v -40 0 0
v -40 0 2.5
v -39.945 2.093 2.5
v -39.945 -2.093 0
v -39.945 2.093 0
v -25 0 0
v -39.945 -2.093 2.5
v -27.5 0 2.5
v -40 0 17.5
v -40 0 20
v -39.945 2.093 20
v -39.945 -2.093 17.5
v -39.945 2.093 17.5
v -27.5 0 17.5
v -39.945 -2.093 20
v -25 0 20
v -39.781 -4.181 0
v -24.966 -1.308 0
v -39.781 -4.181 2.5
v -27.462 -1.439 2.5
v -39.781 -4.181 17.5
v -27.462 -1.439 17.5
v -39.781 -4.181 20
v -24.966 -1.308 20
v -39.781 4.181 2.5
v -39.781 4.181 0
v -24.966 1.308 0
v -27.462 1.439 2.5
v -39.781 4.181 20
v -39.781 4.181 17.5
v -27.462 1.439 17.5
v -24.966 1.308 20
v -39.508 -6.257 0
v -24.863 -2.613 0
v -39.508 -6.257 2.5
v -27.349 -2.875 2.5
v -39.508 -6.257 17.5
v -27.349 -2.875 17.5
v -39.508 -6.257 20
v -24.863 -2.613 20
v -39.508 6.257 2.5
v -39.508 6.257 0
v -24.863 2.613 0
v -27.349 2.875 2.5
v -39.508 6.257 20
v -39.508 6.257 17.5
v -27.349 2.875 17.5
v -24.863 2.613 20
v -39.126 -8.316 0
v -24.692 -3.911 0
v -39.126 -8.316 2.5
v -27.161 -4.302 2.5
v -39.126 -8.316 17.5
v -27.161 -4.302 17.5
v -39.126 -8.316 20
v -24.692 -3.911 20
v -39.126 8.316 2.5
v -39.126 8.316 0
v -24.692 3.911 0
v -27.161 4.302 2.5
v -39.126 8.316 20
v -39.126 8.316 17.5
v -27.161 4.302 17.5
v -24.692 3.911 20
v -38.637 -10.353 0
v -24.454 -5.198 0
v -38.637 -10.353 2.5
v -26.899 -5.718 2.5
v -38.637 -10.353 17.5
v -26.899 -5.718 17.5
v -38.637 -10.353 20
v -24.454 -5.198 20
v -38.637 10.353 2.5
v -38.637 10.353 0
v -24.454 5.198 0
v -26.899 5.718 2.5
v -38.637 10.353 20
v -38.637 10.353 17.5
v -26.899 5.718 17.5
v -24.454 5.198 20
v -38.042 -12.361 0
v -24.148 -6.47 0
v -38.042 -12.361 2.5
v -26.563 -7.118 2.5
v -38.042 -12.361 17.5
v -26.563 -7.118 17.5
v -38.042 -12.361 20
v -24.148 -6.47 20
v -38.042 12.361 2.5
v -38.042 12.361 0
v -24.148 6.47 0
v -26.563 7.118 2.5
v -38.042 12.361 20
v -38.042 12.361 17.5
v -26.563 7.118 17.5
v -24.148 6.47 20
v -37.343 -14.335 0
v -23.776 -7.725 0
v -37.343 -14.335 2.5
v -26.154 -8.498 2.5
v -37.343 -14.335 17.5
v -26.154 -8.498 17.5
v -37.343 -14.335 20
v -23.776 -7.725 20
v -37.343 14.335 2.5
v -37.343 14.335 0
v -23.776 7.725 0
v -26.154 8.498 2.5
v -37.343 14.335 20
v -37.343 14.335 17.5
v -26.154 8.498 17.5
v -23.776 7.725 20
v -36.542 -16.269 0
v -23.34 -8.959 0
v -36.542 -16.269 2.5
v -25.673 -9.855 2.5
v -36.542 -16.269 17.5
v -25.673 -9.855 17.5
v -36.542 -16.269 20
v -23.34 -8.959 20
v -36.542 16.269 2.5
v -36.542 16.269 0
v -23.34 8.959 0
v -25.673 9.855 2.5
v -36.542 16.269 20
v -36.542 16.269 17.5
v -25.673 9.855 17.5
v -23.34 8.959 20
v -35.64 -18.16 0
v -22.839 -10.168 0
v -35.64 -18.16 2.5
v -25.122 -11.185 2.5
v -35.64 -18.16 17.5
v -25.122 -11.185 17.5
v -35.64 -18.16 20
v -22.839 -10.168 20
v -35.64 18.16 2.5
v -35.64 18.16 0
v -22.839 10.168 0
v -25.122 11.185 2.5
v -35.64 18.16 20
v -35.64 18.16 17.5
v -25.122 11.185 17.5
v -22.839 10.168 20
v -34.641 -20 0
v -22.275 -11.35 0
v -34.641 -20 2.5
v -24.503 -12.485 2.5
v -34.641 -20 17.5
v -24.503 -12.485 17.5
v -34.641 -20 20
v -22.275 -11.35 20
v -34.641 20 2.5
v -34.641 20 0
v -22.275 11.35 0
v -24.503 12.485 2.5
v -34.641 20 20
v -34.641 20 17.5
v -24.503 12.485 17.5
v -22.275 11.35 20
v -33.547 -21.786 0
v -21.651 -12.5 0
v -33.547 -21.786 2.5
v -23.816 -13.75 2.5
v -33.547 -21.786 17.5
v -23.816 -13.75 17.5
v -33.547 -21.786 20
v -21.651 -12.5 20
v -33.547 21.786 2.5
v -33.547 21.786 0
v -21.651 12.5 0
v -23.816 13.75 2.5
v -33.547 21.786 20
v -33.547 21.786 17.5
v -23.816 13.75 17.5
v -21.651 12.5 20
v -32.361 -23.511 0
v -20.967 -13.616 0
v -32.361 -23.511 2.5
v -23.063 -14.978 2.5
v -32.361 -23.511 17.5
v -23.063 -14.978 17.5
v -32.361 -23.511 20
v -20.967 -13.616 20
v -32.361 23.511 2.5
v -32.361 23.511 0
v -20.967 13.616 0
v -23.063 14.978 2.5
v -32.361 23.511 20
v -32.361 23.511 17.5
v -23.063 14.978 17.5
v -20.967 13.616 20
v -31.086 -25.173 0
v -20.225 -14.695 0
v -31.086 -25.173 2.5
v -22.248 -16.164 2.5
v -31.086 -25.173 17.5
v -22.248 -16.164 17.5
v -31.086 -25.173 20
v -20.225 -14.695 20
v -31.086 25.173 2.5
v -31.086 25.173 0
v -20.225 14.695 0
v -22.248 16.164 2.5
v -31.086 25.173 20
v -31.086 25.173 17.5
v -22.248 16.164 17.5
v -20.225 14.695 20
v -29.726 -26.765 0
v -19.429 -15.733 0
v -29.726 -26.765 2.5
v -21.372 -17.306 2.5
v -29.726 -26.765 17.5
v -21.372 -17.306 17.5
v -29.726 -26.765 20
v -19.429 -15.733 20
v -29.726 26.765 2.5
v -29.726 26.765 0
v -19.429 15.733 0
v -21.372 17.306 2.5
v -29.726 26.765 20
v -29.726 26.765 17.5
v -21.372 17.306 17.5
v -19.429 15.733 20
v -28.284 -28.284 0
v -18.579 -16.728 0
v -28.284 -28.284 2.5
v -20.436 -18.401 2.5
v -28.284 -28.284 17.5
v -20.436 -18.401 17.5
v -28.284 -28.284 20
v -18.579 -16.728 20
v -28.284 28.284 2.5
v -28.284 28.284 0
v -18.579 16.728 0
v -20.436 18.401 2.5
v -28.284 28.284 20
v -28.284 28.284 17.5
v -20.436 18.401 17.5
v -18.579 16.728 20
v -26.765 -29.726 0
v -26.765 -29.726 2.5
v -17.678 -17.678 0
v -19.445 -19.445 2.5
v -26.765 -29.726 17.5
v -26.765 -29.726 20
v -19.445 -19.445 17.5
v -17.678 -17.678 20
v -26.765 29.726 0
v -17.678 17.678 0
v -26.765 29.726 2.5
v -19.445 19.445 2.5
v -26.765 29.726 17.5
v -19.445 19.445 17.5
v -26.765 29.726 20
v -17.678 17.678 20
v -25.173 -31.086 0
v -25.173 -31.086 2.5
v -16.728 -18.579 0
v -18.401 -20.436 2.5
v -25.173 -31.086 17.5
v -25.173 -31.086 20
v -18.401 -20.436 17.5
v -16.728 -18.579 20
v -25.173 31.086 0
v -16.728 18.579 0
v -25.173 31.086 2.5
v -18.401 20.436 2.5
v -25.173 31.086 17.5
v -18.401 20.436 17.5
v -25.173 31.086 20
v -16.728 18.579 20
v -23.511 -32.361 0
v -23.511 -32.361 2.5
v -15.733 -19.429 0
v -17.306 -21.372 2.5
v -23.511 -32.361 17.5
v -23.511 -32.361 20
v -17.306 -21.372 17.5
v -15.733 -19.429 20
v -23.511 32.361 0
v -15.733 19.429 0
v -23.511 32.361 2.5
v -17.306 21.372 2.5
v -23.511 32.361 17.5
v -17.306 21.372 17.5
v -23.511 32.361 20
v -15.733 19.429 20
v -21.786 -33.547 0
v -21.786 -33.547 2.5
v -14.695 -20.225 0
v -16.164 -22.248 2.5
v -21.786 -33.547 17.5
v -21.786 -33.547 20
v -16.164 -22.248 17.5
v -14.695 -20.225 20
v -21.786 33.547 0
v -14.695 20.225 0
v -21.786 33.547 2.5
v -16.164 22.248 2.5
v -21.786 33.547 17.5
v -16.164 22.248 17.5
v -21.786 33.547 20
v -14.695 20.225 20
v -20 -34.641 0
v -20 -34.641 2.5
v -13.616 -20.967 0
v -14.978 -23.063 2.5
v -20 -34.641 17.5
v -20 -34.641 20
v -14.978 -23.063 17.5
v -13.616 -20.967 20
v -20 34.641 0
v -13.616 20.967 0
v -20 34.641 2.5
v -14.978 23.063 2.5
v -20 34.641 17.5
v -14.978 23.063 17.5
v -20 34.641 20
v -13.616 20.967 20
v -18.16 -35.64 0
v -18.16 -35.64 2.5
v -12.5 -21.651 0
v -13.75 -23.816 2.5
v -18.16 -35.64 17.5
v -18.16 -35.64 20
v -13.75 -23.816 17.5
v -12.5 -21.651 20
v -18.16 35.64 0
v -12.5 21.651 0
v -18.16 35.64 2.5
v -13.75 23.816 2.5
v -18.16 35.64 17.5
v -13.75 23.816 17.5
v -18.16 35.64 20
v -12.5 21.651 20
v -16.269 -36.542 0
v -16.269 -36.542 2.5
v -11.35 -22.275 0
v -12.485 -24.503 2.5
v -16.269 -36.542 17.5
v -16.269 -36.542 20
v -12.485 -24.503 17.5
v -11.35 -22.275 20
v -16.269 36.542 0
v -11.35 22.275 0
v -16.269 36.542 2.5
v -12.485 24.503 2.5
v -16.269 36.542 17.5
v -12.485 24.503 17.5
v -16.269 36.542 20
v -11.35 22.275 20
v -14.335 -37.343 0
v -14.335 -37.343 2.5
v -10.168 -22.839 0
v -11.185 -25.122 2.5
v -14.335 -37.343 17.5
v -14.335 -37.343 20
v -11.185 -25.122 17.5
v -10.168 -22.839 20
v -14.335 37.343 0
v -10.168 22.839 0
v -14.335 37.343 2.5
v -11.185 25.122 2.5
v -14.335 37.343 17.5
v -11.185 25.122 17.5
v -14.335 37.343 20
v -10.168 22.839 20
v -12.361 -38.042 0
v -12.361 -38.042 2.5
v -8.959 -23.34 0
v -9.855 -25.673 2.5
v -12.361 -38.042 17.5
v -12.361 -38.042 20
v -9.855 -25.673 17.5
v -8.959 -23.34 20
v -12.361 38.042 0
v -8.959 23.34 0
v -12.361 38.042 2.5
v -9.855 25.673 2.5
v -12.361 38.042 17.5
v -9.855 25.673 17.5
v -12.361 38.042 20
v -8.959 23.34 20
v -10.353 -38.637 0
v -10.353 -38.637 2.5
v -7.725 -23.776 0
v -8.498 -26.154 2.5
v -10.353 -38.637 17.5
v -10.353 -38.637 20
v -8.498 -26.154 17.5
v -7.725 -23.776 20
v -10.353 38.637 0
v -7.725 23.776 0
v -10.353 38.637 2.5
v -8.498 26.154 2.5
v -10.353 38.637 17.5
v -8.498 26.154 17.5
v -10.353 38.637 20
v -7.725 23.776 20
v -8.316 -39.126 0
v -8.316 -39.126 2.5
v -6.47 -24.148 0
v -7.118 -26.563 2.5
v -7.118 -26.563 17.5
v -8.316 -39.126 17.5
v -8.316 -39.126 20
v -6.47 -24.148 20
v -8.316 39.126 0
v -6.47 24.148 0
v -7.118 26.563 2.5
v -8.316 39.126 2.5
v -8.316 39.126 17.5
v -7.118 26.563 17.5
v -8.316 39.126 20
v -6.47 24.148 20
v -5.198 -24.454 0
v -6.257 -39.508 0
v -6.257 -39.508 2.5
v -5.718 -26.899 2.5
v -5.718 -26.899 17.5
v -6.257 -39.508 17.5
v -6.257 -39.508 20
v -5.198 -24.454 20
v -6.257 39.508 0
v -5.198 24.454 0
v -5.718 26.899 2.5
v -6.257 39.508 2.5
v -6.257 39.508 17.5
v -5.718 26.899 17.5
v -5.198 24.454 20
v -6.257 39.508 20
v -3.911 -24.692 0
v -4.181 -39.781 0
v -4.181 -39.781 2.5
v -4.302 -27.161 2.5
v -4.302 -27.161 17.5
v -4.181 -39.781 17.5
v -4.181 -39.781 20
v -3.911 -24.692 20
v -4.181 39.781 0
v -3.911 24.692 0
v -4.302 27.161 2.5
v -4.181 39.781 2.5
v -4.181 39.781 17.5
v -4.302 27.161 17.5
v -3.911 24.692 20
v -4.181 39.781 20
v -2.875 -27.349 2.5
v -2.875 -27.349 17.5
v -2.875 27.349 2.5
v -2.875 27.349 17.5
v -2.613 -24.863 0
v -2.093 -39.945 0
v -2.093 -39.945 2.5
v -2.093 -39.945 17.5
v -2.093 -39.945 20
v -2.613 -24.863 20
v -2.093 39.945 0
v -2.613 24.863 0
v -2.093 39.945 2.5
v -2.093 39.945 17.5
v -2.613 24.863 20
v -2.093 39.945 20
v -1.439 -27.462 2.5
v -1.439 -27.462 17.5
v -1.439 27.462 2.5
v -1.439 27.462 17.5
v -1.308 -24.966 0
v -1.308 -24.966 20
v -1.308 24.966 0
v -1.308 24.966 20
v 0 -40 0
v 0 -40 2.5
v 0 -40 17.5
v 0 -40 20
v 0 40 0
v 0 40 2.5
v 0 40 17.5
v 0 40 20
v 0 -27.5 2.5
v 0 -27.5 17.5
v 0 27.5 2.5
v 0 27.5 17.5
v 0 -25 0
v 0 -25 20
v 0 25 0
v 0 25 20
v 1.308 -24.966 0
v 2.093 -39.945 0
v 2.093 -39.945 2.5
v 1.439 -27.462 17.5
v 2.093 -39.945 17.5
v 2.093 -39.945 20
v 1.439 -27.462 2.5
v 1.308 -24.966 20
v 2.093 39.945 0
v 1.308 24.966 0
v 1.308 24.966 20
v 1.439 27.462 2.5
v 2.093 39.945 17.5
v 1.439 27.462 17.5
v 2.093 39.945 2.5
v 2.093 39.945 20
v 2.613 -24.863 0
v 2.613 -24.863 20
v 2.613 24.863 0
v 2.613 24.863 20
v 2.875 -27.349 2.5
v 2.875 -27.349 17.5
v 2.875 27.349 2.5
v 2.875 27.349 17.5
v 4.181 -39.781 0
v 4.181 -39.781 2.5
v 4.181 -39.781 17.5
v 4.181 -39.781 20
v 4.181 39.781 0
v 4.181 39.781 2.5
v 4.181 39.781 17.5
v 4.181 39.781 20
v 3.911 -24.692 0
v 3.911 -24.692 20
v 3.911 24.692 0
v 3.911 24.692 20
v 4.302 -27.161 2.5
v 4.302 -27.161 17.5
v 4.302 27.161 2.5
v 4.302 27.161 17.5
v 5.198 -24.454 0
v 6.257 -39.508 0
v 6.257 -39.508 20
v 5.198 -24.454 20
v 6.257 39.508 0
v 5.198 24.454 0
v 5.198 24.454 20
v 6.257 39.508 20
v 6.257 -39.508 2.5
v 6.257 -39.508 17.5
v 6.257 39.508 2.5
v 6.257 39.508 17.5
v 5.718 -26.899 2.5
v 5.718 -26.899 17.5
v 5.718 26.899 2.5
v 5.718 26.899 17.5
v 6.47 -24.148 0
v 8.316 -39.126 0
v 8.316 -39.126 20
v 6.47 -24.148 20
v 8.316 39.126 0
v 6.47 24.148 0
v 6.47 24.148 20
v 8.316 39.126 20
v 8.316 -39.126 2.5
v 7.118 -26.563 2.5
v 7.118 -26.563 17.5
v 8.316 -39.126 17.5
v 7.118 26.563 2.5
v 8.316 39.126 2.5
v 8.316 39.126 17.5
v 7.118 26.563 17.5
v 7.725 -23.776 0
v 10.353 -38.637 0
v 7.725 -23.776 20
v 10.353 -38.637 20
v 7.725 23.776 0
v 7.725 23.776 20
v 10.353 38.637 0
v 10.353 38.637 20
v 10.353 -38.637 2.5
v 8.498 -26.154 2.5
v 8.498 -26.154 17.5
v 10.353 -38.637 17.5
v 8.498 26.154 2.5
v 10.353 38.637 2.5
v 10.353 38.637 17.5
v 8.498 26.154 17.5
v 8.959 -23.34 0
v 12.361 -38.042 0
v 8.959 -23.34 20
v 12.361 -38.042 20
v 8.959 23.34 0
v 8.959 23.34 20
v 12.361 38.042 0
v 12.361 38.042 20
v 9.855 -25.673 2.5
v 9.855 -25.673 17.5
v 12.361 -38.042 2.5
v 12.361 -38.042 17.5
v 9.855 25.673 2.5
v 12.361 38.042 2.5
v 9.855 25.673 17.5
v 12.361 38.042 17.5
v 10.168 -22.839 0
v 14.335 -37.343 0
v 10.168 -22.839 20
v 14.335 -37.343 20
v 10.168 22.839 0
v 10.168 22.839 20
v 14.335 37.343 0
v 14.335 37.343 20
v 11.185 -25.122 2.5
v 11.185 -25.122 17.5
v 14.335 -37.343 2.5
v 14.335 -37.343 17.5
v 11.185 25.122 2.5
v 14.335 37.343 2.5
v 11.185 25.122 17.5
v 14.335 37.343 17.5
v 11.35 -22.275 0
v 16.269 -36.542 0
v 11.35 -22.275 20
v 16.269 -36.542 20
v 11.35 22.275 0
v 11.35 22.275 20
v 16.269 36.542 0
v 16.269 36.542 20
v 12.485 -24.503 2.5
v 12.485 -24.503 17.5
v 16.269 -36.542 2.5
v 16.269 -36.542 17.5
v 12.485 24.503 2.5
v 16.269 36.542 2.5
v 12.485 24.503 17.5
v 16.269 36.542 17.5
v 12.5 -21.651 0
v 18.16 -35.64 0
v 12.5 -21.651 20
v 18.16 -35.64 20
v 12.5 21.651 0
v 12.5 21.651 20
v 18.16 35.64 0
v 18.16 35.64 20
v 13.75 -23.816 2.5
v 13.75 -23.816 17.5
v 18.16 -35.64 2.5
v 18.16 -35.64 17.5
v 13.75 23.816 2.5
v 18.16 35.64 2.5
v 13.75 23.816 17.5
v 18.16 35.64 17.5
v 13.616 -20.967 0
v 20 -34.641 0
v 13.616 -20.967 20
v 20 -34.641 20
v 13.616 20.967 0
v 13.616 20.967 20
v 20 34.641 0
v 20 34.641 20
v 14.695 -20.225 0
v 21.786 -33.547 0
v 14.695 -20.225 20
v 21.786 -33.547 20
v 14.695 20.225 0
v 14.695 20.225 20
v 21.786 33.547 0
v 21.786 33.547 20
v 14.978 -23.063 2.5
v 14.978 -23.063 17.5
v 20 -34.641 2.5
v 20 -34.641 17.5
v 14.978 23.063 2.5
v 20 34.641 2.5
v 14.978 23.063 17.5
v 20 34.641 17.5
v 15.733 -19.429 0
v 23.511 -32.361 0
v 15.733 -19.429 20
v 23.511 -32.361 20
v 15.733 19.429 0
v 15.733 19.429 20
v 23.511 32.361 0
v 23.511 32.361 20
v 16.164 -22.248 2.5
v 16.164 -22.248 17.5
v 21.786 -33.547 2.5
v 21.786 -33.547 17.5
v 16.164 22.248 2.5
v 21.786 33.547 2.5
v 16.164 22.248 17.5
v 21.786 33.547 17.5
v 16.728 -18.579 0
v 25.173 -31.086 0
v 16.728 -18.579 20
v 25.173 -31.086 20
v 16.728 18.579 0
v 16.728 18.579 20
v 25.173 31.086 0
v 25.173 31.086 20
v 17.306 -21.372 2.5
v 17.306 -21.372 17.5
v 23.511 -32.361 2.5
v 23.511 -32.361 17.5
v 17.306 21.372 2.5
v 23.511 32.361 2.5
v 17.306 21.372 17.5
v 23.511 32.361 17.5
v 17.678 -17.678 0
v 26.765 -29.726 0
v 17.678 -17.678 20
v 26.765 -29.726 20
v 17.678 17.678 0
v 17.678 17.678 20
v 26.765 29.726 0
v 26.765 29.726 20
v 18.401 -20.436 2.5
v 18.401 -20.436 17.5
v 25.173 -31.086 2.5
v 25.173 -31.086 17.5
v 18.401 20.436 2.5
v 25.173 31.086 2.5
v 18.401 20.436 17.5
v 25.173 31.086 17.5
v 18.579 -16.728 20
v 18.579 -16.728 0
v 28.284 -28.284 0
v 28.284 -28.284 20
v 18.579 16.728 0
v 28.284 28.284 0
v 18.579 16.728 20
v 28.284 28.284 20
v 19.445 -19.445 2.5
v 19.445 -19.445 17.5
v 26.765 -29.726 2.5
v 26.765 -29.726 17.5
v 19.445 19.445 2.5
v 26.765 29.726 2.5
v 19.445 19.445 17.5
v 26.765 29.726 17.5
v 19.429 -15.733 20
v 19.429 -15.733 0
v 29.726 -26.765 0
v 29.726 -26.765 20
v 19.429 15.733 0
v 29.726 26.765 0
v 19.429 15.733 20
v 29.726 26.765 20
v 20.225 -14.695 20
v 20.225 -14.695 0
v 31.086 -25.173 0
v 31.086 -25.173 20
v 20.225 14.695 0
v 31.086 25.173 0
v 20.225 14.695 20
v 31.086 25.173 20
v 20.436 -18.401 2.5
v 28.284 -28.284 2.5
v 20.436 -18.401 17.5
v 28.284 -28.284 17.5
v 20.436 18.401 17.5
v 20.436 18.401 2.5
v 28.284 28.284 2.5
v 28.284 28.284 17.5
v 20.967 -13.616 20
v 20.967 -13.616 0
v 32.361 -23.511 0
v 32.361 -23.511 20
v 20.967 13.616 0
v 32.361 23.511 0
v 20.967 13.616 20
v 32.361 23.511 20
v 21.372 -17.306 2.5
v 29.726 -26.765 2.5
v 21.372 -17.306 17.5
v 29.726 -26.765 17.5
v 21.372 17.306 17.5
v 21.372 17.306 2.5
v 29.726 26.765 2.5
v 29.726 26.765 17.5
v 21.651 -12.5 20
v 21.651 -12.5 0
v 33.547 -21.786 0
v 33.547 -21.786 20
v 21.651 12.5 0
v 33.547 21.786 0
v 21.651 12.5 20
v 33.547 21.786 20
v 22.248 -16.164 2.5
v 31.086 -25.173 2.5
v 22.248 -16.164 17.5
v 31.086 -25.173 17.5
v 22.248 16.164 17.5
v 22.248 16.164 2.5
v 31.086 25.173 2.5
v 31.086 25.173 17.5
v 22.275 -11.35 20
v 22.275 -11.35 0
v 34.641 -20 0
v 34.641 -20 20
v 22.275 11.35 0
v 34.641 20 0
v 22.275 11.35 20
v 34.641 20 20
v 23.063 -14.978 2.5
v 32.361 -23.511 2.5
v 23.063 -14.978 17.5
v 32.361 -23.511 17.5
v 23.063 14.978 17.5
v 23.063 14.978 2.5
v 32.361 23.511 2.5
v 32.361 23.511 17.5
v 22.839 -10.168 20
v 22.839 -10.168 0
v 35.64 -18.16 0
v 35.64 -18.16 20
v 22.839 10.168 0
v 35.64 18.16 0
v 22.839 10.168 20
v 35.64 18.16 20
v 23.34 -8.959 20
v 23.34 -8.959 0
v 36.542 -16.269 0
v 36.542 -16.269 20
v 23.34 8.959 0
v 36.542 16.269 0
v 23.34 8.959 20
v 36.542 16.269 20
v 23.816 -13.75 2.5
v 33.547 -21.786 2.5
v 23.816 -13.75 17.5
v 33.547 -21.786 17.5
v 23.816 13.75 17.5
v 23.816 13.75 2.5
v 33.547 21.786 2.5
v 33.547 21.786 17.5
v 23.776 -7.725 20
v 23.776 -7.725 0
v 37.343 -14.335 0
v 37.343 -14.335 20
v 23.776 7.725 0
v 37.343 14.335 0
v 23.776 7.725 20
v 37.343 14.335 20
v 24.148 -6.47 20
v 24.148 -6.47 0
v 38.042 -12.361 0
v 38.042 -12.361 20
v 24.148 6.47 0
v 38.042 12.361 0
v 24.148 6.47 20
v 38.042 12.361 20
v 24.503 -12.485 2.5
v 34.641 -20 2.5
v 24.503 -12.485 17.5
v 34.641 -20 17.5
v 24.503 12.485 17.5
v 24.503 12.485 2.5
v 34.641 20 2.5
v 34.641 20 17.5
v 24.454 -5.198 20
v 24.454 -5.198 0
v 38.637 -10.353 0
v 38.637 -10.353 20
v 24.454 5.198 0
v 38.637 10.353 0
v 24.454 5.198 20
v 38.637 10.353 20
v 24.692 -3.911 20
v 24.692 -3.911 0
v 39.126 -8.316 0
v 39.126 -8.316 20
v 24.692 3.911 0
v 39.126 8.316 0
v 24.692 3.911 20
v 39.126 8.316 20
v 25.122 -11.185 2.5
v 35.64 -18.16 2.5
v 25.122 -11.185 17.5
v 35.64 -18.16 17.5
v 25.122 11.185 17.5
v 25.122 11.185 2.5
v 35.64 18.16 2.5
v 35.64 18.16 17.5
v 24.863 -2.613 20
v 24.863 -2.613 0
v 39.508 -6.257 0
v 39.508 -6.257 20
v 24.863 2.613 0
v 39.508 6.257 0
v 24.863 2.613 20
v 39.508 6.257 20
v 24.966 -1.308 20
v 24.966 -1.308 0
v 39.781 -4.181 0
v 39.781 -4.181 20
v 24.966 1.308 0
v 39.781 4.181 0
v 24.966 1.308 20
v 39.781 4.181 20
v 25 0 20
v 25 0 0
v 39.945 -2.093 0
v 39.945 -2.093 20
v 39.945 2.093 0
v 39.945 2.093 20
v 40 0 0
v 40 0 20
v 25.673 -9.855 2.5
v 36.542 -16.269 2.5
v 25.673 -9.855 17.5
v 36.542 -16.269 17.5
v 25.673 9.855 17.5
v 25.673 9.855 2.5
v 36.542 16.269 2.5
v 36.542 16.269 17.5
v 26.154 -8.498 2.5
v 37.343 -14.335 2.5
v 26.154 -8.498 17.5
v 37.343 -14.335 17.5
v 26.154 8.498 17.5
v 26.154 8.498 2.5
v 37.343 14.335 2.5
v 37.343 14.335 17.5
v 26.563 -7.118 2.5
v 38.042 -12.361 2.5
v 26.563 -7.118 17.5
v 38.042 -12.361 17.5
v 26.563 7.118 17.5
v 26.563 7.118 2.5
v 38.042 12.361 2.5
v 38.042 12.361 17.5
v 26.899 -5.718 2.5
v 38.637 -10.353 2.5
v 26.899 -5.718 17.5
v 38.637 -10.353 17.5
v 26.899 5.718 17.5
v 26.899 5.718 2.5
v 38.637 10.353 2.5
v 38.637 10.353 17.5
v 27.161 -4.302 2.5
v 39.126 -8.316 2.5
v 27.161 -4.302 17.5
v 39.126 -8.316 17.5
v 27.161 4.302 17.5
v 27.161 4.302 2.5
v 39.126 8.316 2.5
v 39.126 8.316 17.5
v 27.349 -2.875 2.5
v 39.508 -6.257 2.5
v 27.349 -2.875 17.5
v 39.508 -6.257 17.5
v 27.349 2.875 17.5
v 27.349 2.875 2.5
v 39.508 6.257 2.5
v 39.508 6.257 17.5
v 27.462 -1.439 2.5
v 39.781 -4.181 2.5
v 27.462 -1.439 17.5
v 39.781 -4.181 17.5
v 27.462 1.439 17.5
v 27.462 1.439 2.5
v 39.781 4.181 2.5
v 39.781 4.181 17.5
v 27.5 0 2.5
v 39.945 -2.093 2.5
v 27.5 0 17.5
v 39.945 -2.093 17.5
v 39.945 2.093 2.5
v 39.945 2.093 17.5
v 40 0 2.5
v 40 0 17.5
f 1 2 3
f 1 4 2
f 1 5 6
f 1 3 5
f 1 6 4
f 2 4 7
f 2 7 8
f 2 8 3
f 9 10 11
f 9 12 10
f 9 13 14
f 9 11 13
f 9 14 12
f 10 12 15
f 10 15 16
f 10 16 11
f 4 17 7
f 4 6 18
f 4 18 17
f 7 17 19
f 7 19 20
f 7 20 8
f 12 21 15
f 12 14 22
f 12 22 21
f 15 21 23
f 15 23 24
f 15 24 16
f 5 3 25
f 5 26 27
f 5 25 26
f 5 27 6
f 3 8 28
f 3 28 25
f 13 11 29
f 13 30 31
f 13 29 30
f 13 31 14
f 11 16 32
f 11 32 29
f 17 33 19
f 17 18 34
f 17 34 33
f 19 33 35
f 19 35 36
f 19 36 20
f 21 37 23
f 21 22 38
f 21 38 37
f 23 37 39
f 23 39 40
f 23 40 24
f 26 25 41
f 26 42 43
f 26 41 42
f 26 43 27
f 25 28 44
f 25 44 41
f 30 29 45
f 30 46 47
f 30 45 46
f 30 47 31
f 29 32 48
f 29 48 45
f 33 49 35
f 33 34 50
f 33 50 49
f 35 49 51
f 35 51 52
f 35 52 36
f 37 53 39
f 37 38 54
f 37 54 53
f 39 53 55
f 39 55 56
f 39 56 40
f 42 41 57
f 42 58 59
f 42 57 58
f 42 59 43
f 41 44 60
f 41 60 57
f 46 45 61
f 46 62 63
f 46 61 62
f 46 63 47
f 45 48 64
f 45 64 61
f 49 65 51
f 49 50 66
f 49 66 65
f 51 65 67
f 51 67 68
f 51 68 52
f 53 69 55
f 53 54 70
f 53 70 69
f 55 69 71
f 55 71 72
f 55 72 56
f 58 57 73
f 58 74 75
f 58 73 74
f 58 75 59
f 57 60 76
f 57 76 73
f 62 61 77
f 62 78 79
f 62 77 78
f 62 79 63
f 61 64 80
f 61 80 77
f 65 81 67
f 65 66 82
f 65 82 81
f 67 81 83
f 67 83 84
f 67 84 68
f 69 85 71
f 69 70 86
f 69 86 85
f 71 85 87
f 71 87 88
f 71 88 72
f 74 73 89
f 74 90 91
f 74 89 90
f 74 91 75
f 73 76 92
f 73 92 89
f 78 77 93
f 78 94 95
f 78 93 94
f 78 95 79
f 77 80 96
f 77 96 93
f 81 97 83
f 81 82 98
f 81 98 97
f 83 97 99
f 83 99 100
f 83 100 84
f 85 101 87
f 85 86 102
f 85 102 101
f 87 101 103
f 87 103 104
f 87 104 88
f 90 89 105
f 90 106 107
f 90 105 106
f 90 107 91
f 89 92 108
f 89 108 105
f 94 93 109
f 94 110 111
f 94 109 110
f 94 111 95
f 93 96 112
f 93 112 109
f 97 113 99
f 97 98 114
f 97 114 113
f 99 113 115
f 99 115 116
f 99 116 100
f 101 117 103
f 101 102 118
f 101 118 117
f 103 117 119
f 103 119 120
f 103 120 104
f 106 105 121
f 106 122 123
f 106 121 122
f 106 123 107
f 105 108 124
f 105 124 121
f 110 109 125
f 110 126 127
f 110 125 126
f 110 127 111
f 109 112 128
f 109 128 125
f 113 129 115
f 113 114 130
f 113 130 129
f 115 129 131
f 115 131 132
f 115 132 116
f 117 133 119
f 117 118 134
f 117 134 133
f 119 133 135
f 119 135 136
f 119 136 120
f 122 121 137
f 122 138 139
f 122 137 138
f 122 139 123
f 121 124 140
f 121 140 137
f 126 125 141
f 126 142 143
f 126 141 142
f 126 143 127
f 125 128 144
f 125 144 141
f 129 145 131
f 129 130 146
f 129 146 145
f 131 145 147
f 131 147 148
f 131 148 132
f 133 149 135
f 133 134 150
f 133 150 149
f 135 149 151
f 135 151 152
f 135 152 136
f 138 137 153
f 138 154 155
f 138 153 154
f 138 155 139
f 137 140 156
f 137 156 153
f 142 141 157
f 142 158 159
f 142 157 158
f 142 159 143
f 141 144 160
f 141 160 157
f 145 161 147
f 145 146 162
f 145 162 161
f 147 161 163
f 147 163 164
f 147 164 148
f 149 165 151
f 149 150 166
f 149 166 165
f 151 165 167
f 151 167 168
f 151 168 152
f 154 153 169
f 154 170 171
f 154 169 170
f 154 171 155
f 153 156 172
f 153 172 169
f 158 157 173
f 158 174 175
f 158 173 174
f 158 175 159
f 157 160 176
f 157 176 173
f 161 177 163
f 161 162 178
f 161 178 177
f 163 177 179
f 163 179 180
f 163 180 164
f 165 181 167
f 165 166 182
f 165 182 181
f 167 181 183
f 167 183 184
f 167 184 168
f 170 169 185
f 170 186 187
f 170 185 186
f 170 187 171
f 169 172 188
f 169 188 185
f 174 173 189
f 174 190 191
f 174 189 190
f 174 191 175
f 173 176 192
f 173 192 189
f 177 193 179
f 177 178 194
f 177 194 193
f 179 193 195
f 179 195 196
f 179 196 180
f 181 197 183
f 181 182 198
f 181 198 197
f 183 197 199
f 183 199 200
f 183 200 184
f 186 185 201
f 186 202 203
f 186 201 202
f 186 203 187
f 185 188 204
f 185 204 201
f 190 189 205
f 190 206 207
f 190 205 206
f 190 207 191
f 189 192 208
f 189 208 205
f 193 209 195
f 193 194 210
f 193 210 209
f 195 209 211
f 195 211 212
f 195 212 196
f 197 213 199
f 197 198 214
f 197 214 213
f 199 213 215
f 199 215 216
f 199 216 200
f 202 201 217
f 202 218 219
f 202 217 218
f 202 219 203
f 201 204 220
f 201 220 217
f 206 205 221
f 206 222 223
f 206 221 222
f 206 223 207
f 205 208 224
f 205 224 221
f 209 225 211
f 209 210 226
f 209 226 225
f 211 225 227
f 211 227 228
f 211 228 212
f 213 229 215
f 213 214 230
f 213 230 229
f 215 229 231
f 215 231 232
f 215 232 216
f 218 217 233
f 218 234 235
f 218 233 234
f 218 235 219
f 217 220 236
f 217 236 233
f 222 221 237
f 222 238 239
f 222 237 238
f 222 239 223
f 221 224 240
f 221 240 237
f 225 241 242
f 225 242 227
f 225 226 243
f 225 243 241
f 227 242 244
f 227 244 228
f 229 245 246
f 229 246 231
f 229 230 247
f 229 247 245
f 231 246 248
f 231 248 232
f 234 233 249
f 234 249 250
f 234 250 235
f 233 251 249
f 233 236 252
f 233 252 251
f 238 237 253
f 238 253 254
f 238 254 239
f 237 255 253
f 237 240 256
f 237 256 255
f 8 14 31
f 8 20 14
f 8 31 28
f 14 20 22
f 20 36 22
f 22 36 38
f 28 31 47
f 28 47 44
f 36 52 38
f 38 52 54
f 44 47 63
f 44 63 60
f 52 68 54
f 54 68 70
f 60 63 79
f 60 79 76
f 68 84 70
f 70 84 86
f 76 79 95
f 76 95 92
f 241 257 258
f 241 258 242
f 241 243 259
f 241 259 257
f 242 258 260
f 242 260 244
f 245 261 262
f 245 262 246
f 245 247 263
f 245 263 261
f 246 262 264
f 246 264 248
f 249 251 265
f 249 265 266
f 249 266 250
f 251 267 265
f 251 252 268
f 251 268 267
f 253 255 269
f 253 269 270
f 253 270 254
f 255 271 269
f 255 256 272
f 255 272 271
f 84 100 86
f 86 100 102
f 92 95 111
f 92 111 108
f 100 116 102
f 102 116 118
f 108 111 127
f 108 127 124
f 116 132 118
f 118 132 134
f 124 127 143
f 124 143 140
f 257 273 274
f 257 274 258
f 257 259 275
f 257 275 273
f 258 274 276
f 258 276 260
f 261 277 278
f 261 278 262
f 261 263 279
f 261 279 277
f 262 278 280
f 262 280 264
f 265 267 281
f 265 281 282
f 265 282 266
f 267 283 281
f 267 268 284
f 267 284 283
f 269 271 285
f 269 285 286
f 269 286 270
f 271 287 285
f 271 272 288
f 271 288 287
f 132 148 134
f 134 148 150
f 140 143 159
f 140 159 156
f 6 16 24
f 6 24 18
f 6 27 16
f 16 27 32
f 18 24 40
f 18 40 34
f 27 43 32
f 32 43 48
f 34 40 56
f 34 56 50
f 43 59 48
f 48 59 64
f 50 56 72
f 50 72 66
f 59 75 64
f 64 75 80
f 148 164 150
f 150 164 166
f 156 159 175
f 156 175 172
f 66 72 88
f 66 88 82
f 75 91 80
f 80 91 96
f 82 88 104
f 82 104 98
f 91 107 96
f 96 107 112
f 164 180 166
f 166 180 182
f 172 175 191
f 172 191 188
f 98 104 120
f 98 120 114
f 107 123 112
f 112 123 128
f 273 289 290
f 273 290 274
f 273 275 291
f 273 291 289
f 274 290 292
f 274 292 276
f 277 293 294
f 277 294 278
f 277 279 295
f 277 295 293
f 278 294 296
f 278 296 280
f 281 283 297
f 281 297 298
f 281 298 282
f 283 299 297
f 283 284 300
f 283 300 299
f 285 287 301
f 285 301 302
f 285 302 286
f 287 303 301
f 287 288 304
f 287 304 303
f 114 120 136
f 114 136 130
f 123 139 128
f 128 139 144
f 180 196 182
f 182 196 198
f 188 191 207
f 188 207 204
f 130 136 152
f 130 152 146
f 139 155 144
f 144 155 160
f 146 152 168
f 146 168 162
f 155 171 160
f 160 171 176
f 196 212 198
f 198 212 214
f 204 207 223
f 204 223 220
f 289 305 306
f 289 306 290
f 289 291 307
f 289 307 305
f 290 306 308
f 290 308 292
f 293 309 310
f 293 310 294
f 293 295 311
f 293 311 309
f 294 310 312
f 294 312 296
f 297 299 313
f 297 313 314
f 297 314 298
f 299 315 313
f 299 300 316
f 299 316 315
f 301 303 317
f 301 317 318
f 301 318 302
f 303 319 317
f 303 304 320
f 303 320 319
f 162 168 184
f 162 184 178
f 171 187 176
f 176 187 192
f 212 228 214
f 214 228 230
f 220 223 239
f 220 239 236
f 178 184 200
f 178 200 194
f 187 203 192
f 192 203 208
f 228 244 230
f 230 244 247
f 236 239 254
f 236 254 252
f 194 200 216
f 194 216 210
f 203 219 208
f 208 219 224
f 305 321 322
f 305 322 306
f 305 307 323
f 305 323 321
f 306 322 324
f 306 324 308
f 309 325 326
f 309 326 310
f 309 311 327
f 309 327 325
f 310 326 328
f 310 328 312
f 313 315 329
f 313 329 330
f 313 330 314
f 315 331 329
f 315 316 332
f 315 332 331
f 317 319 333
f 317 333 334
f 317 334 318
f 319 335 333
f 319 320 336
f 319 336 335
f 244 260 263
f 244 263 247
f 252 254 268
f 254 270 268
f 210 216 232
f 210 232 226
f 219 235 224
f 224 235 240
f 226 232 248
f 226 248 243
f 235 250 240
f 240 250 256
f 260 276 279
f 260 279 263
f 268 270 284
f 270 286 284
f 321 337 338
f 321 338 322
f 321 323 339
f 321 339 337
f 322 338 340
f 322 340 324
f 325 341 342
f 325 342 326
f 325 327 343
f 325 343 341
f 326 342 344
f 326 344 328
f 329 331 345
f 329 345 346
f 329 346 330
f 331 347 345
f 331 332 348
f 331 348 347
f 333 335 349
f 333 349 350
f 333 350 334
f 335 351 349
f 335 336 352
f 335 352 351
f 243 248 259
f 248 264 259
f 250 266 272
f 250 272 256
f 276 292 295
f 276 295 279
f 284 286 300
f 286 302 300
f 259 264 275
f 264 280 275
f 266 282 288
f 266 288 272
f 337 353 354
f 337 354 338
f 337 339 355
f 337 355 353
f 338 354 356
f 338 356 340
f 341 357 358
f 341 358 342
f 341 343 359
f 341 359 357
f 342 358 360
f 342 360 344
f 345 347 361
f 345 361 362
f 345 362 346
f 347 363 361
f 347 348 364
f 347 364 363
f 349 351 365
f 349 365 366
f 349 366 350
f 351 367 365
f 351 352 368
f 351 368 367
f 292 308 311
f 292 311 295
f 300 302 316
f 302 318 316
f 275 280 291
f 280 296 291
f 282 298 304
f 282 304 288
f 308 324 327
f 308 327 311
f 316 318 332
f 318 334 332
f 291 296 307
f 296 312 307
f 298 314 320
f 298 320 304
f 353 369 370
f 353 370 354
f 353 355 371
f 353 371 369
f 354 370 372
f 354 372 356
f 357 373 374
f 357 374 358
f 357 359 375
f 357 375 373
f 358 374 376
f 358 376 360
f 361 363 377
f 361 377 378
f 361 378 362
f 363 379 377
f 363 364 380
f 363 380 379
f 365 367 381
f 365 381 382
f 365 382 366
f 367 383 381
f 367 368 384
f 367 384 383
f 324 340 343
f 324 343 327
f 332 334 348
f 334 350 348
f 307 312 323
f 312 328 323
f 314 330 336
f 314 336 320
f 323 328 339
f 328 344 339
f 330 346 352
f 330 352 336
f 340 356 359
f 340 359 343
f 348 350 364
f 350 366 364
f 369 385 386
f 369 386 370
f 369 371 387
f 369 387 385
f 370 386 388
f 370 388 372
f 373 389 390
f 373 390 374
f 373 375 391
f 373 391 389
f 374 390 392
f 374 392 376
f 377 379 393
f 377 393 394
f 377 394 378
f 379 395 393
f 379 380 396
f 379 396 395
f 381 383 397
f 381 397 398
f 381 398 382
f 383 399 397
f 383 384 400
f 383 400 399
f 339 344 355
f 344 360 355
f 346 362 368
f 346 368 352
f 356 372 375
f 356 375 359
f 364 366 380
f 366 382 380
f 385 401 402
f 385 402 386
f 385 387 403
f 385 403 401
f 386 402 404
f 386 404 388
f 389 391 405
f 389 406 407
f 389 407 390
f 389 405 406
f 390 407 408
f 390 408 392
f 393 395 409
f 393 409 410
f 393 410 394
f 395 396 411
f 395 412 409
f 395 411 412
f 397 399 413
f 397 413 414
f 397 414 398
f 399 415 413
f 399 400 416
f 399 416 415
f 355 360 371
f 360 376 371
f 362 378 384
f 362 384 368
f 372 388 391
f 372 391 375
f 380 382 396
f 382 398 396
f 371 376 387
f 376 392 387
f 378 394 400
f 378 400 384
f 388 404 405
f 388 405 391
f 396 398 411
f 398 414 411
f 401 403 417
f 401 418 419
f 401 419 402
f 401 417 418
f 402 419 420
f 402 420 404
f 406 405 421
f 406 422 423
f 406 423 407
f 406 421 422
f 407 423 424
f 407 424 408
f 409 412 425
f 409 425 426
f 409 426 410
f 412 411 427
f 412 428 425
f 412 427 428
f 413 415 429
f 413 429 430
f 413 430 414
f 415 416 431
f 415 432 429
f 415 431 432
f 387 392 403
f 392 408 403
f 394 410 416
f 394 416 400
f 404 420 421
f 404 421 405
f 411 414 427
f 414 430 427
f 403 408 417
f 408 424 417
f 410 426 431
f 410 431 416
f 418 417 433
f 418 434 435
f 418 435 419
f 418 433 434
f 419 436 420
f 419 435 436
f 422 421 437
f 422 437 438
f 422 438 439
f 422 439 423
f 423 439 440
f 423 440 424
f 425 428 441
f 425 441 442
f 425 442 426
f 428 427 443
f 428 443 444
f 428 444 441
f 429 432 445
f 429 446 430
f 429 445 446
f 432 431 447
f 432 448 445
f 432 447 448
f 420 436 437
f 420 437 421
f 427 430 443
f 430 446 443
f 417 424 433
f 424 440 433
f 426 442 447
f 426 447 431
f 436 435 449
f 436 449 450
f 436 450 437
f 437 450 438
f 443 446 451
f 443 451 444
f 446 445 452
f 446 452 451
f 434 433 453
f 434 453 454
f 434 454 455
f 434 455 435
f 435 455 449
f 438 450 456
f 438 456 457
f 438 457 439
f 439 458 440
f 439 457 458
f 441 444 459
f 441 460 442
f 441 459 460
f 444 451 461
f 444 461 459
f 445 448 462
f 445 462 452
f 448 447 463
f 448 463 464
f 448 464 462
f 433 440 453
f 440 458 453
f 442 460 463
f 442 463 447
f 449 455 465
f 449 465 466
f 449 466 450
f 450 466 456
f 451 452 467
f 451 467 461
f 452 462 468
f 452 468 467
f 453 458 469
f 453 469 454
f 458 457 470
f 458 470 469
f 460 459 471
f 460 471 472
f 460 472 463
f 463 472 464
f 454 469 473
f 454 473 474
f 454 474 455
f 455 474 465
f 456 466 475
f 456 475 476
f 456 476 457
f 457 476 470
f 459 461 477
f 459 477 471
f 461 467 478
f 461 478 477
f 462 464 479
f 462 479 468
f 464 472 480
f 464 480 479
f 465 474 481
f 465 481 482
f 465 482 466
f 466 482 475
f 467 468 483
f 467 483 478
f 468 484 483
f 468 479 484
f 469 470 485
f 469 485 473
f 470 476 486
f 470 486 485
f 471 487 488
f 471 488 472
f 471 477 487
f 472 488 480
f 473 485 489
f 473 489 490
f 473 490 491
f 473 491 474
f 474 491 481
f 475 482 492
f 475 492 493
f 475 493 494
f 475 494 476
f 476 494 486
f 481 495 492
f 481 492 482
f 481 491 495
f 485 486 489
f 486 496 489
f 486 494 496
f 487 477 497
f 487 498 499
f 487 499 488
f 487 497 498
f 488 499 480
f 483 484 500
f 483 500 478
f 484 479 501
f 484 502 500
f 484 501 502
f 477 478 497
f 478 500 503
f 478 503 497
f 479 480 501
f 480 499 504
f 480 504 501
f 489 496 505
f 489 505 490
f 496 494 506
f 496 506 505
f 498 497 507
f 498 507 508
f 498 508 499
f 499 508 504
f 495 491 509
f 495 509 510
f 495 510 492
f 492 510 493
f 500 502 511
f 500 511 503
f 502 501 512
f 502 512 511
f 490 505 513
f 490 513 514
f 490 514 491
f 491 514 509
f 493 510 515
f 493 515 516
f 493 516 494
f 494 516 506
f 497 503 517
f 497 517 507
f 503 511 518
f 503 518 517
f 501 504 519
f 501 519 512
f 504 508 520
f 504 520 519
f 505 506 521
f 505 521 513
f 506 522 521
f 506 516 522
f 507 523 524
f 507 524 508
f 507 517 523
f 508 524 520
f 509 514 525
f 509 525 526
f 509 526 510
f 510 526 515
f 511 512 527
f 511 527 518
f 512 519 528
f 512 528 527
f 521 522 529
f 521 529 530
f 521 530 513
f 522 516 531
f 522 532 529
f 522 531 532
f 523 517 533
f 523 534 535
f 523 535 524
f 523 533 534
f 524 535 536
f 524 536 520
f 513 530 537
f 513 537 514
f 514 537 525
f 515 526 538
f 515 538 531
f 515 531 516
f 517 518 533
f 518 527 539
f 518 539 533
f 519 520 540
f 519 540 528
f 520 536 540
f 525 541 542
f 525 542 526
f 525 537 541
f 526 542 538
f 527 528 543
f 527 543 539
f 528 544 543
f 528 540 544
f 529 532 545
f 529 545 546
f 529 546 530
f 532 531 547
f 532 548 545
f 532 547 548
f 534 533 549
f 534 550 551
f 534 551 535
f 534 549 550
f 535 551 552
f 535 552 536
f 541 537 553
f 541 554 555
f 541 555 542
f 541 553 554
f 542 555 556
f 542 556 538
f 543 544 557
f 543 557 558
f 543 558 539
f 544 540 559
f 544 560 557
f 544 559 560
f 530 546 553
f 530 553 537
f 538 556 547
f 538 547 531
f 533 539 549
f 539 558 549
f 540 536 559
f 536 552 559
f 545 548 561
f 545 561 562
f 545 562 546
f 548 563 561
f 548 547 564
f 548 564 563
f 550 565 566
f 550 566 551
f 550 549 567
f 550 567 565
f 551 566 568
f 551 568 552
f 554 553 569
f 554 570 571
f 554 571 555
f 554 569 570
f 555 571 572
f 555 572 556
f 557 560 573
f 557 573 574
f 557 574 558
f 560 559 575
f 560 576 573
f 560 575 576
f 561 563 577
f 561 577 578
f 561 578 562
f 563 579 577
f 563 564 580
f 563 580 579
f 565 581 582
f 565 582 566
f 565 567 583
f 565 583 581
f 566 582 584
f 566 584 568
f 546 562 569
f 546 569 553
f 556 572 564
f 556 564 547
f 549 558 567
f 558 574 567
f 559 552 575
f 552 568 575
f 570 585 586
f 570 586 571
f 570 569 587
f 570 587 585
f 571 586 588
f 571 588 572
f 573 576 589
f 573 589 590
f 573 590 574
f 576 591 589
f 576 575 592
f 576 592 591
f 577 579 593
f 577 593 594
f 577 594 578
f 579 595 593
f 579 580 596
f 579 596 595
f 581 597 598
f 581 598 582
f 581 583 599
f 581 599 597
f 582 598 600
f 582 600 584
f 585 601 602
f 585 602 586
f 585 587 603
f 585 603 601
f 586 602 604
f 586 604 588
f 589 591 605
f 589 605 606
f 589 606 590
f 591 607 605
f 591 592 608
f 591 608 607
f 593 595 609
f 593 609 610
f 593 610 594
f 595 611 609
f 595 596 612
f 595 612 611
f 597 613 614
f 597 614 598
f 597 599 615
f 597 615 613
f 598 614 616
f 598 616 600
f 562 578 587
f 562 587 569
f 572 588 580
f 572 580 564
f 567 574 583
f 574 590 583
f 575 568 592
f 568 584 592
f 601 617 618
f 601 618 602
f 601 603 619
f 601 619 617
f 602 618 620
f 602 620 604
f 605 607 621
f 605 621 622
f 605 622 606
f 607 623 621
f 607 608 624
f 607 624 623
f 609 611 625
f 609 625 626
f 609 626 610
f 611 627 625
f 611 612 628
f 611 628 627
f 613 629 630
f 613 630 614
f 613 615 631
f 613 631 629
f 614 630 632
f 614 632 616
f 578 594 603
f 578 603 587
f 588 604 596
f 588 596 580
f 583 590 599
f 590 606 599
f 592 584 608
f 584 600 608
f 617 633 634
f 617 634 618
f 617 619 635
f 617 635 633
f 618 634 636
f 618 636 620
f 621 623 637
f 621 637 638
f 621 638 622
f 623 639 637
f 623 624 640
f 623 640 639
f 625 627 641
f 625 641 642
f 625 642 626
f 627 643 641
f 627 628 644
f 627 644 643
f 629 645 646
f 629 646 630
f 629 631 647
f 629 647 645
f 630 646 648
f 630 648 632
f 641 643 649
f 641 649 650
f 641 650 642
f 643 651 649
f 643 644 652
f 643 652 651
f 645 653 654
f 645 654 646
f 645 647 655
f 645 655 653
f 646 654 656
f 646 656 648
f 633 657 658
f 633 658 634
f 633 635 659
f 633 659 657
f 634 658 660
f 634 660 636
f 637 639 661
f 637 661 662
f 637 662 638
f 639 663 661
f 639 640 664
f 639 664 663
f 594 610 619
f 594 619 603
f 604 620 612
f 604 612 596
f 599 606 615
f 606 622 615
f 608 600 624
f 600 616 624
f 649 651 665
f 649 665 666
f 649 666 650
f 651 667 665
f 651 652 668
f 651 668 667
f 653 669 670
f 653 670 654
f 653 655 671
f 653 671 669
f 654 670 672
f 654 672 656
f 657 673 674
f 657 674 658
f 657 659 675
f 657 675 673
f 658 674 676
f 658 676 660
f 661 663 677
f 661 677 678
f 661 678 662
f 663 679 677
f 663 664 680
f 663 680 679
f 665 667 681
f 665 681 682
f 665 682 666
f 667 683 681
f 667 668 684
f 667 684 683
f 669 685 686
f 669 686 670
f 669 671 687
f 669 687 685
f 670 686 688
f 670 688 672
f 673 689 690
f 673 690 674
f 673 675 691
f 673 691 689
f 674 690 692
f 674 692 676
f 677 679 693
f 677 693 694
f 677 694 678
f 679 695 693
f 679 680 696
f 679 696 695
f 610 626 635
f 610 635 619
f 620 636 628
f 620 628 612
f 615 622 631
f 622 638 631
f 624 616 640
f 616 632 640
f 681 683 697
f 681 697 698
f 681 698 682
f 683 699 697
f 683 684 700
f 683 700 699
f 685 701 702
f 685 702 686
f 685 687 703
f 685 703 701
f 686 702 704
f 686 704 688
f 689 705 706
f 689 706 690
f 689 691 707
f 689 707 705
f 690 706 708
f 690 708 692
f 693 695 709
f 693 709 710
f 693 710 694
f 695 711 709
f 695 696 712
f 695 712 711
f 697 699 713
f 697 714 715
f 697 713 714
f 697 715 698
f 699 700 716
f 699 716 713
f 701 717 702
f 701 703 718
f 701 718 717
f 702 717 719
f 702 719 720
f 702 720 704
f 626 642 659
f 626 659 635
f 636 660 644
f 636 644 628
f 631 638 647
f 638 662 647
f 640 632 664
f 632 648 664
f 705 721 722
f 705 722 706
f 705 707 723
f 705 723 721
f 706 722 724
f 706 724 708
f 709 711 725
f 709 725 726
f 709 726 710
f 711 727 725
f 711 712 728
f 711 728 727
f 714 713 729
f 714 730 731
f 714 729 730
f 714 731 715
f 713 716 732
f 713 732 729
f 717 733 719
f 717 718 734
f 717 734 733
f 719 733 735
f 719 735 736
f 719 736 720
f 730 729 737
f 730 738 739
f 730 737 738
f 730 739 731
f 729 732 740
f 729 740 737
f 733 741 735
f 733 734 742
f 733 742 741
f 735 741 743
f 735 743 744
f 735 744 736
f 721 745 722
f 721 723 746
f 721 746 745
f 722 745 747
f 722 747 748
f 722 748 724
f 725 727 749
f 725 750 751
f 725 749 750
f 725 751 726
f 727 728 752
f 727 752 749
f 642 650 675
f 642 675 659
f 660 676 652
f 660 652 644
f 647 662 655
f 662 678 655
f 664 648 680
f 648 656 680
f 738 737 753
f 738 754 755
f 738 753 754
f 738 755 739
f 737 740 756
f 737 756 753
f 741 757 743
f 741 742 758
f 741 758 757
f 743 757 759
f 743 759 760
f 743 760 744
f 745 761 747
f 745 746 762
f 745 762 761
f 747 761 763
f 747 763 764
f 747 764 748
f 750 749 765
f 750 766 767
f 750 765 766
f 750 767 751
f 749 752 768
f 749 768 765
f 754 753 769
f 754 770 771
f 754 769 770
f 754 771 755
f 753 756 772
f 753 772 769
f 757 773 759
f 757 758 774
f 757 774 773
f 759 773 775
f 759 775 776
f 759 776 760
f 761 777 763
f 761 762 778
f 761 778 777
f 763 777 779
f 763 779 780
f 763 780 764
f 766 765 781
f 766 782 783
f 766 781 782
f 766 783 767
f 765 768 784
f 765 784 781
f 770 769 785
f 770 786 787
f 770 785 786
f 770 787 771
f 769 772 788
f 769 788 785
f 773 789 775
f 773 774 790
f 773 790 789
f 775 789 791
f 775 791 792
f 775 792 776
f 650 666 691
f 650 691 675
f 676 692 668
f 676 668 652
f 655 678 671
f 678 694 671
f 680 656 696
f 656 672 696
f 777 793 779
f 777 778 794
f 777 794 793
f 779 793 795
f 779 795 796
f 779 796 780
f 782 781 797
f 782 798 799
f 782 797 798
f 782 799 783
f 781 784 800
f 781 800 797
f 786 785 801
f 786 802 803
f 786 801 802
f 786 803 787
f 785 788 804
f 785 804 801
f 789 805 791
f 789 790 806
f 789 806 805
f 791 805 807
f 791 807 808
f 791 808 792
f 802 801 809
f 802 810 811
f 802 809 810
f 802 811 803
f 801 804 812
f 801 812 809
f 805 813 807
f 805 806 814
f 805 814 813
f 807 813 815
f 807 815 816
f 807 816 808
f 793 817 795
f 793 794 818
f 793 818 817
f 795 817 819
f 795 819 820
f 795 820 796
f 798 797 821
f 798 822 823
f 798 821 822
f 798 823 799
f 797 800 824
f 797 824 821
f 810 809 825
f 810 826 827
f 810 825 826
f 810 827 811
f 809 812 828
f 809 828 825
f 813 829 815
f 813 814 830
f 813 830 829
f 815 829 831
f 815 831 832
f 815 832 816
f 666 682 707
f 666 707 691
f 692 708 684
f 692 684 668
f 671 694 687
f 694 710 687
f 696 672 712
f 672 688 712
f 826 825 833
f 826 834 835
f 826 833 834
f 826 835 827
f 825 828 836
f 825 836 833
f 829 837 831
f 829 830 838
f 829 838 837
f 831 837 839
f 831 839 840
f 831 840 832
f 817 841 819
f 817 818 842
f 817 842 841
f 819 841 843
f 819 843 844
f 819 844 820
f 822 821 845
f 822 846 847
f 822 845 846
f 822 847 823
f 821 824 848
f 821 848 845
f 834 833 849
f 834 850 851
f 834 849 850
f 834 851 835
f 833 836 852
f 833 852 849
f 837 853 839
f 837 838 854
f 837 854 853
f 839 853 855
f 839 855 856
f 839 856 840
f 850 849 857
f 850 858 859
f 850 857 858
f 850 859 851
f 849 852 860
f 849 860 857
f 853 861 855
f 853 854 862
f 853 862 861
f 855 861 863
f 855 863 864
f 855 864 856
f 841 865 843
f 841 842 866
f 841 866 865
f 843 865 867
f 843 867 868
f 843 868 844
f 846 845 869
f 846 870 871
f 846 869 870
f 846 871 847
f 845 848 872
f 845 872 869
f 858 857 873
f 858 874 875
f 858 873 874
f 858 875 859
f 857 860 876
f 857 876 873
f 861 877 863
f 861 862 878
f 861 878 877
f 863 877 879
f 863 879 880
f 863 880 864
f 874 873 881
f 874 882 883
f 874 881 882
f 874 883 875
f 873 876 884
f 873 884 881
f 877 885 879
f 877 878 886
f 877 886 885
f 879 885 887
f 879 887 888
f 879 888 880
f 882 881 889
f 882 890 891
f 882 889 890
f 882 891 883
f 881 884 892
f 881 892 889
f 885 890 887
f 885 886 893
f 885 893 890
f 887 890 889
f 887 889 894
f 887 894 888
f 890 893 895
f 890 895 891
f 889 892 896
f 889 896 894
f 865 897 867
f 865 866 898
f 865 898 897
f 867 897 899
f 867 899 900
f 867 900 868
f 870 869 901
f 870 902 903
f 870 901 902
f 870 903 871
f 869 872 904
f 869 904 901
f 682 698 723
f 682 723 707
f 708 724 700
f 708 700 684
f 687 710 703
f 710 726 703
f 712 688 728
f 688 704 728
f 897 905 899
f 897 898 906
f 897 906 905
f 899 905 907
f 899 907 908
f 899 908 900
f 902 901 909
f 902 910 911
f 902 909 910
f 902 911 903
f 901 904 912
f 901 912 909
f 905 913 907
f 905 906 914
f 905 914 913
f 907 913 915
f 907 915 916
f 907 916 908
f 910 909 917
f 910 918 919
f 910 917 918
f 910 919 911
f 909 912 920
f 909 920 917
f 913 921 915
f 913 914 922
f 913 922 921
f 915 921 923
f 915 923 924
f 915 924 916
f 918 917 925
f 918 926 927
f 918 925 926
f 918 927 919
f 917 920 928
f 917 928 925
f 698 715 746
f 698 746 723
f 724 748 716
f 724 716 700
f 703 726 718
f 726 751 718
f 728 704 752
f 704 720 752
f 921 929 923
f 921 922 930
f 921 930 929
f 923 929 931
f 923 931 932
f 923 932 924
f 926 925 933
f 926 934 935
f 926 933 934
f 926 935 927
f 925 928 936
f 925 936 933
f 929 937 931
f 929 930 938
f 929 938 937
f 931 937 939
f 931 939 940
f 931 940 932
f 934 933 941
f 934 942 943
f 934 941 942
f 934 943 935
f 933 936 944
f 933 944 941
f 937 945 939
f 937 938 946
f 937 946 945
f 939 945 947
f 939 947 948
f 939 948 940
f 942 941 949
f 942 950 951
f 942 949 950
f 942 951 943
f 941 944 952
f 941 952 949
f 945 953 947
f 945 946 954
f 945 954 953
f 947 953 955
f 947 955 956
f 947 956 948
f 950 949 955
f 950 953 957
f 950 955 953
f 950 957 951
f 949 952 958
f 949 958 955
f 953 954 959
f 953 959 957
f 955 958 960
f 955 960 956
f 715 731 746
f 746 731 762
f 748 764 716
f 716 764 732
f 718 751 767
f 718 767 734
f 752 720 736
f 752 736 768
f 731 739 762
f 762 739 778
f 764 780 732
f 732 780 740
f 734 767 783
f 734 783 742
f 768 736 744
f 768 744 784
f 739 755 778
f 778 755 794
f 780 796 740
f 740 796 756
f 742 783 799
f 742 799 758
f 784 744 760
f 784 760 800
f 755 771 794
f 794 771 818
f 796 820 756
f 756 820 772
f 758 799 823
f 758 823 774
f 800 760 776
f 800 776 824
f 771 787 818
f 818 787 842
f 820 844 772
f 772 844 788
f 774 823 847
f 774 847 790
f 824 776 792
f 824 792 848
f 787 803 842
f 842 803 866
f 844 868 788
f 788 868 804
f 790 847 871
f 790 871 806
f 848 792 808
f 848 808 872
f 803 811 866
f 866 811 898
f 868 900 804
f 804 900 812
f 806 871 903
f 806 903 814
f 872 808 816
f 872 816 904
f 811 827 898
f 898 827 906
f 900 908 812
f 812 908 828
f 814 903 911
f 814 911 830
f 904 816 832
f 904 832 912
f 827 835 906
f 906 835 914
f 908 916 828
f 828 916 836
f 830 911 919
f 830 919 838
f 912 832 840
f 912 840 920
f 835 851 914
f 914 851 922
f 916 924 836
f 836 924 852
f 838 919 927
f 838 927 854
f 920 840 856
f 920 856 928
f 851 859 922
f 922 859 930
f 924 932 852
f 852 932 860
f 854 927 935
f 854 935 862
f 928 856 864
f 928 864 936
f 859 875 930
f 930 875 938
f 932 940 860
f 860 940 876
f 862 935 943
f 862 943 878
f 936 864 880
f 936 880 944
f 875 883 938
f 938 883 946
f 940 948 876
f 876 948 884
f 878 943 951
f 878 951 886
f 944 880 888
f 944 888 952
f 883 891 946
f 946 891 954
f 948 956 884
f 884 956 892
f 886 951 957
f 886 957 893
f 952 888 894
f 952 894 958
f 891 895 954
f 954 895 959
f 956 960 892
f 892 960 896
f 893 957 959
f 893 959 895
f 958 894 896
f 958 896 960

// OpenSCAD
// store cable without bending it
// 13.09.2025 Sebastian Weigl

$fn=120;

difference() {
  difference() {
    cylinder(d=80,h=20);
    cylinder(d=50,h=20);
  }

  translate([0,0,2.5])
  difference() {
    cylinder(d=80,h=15);
    cylinder(d=55,h=15);
  }
}
